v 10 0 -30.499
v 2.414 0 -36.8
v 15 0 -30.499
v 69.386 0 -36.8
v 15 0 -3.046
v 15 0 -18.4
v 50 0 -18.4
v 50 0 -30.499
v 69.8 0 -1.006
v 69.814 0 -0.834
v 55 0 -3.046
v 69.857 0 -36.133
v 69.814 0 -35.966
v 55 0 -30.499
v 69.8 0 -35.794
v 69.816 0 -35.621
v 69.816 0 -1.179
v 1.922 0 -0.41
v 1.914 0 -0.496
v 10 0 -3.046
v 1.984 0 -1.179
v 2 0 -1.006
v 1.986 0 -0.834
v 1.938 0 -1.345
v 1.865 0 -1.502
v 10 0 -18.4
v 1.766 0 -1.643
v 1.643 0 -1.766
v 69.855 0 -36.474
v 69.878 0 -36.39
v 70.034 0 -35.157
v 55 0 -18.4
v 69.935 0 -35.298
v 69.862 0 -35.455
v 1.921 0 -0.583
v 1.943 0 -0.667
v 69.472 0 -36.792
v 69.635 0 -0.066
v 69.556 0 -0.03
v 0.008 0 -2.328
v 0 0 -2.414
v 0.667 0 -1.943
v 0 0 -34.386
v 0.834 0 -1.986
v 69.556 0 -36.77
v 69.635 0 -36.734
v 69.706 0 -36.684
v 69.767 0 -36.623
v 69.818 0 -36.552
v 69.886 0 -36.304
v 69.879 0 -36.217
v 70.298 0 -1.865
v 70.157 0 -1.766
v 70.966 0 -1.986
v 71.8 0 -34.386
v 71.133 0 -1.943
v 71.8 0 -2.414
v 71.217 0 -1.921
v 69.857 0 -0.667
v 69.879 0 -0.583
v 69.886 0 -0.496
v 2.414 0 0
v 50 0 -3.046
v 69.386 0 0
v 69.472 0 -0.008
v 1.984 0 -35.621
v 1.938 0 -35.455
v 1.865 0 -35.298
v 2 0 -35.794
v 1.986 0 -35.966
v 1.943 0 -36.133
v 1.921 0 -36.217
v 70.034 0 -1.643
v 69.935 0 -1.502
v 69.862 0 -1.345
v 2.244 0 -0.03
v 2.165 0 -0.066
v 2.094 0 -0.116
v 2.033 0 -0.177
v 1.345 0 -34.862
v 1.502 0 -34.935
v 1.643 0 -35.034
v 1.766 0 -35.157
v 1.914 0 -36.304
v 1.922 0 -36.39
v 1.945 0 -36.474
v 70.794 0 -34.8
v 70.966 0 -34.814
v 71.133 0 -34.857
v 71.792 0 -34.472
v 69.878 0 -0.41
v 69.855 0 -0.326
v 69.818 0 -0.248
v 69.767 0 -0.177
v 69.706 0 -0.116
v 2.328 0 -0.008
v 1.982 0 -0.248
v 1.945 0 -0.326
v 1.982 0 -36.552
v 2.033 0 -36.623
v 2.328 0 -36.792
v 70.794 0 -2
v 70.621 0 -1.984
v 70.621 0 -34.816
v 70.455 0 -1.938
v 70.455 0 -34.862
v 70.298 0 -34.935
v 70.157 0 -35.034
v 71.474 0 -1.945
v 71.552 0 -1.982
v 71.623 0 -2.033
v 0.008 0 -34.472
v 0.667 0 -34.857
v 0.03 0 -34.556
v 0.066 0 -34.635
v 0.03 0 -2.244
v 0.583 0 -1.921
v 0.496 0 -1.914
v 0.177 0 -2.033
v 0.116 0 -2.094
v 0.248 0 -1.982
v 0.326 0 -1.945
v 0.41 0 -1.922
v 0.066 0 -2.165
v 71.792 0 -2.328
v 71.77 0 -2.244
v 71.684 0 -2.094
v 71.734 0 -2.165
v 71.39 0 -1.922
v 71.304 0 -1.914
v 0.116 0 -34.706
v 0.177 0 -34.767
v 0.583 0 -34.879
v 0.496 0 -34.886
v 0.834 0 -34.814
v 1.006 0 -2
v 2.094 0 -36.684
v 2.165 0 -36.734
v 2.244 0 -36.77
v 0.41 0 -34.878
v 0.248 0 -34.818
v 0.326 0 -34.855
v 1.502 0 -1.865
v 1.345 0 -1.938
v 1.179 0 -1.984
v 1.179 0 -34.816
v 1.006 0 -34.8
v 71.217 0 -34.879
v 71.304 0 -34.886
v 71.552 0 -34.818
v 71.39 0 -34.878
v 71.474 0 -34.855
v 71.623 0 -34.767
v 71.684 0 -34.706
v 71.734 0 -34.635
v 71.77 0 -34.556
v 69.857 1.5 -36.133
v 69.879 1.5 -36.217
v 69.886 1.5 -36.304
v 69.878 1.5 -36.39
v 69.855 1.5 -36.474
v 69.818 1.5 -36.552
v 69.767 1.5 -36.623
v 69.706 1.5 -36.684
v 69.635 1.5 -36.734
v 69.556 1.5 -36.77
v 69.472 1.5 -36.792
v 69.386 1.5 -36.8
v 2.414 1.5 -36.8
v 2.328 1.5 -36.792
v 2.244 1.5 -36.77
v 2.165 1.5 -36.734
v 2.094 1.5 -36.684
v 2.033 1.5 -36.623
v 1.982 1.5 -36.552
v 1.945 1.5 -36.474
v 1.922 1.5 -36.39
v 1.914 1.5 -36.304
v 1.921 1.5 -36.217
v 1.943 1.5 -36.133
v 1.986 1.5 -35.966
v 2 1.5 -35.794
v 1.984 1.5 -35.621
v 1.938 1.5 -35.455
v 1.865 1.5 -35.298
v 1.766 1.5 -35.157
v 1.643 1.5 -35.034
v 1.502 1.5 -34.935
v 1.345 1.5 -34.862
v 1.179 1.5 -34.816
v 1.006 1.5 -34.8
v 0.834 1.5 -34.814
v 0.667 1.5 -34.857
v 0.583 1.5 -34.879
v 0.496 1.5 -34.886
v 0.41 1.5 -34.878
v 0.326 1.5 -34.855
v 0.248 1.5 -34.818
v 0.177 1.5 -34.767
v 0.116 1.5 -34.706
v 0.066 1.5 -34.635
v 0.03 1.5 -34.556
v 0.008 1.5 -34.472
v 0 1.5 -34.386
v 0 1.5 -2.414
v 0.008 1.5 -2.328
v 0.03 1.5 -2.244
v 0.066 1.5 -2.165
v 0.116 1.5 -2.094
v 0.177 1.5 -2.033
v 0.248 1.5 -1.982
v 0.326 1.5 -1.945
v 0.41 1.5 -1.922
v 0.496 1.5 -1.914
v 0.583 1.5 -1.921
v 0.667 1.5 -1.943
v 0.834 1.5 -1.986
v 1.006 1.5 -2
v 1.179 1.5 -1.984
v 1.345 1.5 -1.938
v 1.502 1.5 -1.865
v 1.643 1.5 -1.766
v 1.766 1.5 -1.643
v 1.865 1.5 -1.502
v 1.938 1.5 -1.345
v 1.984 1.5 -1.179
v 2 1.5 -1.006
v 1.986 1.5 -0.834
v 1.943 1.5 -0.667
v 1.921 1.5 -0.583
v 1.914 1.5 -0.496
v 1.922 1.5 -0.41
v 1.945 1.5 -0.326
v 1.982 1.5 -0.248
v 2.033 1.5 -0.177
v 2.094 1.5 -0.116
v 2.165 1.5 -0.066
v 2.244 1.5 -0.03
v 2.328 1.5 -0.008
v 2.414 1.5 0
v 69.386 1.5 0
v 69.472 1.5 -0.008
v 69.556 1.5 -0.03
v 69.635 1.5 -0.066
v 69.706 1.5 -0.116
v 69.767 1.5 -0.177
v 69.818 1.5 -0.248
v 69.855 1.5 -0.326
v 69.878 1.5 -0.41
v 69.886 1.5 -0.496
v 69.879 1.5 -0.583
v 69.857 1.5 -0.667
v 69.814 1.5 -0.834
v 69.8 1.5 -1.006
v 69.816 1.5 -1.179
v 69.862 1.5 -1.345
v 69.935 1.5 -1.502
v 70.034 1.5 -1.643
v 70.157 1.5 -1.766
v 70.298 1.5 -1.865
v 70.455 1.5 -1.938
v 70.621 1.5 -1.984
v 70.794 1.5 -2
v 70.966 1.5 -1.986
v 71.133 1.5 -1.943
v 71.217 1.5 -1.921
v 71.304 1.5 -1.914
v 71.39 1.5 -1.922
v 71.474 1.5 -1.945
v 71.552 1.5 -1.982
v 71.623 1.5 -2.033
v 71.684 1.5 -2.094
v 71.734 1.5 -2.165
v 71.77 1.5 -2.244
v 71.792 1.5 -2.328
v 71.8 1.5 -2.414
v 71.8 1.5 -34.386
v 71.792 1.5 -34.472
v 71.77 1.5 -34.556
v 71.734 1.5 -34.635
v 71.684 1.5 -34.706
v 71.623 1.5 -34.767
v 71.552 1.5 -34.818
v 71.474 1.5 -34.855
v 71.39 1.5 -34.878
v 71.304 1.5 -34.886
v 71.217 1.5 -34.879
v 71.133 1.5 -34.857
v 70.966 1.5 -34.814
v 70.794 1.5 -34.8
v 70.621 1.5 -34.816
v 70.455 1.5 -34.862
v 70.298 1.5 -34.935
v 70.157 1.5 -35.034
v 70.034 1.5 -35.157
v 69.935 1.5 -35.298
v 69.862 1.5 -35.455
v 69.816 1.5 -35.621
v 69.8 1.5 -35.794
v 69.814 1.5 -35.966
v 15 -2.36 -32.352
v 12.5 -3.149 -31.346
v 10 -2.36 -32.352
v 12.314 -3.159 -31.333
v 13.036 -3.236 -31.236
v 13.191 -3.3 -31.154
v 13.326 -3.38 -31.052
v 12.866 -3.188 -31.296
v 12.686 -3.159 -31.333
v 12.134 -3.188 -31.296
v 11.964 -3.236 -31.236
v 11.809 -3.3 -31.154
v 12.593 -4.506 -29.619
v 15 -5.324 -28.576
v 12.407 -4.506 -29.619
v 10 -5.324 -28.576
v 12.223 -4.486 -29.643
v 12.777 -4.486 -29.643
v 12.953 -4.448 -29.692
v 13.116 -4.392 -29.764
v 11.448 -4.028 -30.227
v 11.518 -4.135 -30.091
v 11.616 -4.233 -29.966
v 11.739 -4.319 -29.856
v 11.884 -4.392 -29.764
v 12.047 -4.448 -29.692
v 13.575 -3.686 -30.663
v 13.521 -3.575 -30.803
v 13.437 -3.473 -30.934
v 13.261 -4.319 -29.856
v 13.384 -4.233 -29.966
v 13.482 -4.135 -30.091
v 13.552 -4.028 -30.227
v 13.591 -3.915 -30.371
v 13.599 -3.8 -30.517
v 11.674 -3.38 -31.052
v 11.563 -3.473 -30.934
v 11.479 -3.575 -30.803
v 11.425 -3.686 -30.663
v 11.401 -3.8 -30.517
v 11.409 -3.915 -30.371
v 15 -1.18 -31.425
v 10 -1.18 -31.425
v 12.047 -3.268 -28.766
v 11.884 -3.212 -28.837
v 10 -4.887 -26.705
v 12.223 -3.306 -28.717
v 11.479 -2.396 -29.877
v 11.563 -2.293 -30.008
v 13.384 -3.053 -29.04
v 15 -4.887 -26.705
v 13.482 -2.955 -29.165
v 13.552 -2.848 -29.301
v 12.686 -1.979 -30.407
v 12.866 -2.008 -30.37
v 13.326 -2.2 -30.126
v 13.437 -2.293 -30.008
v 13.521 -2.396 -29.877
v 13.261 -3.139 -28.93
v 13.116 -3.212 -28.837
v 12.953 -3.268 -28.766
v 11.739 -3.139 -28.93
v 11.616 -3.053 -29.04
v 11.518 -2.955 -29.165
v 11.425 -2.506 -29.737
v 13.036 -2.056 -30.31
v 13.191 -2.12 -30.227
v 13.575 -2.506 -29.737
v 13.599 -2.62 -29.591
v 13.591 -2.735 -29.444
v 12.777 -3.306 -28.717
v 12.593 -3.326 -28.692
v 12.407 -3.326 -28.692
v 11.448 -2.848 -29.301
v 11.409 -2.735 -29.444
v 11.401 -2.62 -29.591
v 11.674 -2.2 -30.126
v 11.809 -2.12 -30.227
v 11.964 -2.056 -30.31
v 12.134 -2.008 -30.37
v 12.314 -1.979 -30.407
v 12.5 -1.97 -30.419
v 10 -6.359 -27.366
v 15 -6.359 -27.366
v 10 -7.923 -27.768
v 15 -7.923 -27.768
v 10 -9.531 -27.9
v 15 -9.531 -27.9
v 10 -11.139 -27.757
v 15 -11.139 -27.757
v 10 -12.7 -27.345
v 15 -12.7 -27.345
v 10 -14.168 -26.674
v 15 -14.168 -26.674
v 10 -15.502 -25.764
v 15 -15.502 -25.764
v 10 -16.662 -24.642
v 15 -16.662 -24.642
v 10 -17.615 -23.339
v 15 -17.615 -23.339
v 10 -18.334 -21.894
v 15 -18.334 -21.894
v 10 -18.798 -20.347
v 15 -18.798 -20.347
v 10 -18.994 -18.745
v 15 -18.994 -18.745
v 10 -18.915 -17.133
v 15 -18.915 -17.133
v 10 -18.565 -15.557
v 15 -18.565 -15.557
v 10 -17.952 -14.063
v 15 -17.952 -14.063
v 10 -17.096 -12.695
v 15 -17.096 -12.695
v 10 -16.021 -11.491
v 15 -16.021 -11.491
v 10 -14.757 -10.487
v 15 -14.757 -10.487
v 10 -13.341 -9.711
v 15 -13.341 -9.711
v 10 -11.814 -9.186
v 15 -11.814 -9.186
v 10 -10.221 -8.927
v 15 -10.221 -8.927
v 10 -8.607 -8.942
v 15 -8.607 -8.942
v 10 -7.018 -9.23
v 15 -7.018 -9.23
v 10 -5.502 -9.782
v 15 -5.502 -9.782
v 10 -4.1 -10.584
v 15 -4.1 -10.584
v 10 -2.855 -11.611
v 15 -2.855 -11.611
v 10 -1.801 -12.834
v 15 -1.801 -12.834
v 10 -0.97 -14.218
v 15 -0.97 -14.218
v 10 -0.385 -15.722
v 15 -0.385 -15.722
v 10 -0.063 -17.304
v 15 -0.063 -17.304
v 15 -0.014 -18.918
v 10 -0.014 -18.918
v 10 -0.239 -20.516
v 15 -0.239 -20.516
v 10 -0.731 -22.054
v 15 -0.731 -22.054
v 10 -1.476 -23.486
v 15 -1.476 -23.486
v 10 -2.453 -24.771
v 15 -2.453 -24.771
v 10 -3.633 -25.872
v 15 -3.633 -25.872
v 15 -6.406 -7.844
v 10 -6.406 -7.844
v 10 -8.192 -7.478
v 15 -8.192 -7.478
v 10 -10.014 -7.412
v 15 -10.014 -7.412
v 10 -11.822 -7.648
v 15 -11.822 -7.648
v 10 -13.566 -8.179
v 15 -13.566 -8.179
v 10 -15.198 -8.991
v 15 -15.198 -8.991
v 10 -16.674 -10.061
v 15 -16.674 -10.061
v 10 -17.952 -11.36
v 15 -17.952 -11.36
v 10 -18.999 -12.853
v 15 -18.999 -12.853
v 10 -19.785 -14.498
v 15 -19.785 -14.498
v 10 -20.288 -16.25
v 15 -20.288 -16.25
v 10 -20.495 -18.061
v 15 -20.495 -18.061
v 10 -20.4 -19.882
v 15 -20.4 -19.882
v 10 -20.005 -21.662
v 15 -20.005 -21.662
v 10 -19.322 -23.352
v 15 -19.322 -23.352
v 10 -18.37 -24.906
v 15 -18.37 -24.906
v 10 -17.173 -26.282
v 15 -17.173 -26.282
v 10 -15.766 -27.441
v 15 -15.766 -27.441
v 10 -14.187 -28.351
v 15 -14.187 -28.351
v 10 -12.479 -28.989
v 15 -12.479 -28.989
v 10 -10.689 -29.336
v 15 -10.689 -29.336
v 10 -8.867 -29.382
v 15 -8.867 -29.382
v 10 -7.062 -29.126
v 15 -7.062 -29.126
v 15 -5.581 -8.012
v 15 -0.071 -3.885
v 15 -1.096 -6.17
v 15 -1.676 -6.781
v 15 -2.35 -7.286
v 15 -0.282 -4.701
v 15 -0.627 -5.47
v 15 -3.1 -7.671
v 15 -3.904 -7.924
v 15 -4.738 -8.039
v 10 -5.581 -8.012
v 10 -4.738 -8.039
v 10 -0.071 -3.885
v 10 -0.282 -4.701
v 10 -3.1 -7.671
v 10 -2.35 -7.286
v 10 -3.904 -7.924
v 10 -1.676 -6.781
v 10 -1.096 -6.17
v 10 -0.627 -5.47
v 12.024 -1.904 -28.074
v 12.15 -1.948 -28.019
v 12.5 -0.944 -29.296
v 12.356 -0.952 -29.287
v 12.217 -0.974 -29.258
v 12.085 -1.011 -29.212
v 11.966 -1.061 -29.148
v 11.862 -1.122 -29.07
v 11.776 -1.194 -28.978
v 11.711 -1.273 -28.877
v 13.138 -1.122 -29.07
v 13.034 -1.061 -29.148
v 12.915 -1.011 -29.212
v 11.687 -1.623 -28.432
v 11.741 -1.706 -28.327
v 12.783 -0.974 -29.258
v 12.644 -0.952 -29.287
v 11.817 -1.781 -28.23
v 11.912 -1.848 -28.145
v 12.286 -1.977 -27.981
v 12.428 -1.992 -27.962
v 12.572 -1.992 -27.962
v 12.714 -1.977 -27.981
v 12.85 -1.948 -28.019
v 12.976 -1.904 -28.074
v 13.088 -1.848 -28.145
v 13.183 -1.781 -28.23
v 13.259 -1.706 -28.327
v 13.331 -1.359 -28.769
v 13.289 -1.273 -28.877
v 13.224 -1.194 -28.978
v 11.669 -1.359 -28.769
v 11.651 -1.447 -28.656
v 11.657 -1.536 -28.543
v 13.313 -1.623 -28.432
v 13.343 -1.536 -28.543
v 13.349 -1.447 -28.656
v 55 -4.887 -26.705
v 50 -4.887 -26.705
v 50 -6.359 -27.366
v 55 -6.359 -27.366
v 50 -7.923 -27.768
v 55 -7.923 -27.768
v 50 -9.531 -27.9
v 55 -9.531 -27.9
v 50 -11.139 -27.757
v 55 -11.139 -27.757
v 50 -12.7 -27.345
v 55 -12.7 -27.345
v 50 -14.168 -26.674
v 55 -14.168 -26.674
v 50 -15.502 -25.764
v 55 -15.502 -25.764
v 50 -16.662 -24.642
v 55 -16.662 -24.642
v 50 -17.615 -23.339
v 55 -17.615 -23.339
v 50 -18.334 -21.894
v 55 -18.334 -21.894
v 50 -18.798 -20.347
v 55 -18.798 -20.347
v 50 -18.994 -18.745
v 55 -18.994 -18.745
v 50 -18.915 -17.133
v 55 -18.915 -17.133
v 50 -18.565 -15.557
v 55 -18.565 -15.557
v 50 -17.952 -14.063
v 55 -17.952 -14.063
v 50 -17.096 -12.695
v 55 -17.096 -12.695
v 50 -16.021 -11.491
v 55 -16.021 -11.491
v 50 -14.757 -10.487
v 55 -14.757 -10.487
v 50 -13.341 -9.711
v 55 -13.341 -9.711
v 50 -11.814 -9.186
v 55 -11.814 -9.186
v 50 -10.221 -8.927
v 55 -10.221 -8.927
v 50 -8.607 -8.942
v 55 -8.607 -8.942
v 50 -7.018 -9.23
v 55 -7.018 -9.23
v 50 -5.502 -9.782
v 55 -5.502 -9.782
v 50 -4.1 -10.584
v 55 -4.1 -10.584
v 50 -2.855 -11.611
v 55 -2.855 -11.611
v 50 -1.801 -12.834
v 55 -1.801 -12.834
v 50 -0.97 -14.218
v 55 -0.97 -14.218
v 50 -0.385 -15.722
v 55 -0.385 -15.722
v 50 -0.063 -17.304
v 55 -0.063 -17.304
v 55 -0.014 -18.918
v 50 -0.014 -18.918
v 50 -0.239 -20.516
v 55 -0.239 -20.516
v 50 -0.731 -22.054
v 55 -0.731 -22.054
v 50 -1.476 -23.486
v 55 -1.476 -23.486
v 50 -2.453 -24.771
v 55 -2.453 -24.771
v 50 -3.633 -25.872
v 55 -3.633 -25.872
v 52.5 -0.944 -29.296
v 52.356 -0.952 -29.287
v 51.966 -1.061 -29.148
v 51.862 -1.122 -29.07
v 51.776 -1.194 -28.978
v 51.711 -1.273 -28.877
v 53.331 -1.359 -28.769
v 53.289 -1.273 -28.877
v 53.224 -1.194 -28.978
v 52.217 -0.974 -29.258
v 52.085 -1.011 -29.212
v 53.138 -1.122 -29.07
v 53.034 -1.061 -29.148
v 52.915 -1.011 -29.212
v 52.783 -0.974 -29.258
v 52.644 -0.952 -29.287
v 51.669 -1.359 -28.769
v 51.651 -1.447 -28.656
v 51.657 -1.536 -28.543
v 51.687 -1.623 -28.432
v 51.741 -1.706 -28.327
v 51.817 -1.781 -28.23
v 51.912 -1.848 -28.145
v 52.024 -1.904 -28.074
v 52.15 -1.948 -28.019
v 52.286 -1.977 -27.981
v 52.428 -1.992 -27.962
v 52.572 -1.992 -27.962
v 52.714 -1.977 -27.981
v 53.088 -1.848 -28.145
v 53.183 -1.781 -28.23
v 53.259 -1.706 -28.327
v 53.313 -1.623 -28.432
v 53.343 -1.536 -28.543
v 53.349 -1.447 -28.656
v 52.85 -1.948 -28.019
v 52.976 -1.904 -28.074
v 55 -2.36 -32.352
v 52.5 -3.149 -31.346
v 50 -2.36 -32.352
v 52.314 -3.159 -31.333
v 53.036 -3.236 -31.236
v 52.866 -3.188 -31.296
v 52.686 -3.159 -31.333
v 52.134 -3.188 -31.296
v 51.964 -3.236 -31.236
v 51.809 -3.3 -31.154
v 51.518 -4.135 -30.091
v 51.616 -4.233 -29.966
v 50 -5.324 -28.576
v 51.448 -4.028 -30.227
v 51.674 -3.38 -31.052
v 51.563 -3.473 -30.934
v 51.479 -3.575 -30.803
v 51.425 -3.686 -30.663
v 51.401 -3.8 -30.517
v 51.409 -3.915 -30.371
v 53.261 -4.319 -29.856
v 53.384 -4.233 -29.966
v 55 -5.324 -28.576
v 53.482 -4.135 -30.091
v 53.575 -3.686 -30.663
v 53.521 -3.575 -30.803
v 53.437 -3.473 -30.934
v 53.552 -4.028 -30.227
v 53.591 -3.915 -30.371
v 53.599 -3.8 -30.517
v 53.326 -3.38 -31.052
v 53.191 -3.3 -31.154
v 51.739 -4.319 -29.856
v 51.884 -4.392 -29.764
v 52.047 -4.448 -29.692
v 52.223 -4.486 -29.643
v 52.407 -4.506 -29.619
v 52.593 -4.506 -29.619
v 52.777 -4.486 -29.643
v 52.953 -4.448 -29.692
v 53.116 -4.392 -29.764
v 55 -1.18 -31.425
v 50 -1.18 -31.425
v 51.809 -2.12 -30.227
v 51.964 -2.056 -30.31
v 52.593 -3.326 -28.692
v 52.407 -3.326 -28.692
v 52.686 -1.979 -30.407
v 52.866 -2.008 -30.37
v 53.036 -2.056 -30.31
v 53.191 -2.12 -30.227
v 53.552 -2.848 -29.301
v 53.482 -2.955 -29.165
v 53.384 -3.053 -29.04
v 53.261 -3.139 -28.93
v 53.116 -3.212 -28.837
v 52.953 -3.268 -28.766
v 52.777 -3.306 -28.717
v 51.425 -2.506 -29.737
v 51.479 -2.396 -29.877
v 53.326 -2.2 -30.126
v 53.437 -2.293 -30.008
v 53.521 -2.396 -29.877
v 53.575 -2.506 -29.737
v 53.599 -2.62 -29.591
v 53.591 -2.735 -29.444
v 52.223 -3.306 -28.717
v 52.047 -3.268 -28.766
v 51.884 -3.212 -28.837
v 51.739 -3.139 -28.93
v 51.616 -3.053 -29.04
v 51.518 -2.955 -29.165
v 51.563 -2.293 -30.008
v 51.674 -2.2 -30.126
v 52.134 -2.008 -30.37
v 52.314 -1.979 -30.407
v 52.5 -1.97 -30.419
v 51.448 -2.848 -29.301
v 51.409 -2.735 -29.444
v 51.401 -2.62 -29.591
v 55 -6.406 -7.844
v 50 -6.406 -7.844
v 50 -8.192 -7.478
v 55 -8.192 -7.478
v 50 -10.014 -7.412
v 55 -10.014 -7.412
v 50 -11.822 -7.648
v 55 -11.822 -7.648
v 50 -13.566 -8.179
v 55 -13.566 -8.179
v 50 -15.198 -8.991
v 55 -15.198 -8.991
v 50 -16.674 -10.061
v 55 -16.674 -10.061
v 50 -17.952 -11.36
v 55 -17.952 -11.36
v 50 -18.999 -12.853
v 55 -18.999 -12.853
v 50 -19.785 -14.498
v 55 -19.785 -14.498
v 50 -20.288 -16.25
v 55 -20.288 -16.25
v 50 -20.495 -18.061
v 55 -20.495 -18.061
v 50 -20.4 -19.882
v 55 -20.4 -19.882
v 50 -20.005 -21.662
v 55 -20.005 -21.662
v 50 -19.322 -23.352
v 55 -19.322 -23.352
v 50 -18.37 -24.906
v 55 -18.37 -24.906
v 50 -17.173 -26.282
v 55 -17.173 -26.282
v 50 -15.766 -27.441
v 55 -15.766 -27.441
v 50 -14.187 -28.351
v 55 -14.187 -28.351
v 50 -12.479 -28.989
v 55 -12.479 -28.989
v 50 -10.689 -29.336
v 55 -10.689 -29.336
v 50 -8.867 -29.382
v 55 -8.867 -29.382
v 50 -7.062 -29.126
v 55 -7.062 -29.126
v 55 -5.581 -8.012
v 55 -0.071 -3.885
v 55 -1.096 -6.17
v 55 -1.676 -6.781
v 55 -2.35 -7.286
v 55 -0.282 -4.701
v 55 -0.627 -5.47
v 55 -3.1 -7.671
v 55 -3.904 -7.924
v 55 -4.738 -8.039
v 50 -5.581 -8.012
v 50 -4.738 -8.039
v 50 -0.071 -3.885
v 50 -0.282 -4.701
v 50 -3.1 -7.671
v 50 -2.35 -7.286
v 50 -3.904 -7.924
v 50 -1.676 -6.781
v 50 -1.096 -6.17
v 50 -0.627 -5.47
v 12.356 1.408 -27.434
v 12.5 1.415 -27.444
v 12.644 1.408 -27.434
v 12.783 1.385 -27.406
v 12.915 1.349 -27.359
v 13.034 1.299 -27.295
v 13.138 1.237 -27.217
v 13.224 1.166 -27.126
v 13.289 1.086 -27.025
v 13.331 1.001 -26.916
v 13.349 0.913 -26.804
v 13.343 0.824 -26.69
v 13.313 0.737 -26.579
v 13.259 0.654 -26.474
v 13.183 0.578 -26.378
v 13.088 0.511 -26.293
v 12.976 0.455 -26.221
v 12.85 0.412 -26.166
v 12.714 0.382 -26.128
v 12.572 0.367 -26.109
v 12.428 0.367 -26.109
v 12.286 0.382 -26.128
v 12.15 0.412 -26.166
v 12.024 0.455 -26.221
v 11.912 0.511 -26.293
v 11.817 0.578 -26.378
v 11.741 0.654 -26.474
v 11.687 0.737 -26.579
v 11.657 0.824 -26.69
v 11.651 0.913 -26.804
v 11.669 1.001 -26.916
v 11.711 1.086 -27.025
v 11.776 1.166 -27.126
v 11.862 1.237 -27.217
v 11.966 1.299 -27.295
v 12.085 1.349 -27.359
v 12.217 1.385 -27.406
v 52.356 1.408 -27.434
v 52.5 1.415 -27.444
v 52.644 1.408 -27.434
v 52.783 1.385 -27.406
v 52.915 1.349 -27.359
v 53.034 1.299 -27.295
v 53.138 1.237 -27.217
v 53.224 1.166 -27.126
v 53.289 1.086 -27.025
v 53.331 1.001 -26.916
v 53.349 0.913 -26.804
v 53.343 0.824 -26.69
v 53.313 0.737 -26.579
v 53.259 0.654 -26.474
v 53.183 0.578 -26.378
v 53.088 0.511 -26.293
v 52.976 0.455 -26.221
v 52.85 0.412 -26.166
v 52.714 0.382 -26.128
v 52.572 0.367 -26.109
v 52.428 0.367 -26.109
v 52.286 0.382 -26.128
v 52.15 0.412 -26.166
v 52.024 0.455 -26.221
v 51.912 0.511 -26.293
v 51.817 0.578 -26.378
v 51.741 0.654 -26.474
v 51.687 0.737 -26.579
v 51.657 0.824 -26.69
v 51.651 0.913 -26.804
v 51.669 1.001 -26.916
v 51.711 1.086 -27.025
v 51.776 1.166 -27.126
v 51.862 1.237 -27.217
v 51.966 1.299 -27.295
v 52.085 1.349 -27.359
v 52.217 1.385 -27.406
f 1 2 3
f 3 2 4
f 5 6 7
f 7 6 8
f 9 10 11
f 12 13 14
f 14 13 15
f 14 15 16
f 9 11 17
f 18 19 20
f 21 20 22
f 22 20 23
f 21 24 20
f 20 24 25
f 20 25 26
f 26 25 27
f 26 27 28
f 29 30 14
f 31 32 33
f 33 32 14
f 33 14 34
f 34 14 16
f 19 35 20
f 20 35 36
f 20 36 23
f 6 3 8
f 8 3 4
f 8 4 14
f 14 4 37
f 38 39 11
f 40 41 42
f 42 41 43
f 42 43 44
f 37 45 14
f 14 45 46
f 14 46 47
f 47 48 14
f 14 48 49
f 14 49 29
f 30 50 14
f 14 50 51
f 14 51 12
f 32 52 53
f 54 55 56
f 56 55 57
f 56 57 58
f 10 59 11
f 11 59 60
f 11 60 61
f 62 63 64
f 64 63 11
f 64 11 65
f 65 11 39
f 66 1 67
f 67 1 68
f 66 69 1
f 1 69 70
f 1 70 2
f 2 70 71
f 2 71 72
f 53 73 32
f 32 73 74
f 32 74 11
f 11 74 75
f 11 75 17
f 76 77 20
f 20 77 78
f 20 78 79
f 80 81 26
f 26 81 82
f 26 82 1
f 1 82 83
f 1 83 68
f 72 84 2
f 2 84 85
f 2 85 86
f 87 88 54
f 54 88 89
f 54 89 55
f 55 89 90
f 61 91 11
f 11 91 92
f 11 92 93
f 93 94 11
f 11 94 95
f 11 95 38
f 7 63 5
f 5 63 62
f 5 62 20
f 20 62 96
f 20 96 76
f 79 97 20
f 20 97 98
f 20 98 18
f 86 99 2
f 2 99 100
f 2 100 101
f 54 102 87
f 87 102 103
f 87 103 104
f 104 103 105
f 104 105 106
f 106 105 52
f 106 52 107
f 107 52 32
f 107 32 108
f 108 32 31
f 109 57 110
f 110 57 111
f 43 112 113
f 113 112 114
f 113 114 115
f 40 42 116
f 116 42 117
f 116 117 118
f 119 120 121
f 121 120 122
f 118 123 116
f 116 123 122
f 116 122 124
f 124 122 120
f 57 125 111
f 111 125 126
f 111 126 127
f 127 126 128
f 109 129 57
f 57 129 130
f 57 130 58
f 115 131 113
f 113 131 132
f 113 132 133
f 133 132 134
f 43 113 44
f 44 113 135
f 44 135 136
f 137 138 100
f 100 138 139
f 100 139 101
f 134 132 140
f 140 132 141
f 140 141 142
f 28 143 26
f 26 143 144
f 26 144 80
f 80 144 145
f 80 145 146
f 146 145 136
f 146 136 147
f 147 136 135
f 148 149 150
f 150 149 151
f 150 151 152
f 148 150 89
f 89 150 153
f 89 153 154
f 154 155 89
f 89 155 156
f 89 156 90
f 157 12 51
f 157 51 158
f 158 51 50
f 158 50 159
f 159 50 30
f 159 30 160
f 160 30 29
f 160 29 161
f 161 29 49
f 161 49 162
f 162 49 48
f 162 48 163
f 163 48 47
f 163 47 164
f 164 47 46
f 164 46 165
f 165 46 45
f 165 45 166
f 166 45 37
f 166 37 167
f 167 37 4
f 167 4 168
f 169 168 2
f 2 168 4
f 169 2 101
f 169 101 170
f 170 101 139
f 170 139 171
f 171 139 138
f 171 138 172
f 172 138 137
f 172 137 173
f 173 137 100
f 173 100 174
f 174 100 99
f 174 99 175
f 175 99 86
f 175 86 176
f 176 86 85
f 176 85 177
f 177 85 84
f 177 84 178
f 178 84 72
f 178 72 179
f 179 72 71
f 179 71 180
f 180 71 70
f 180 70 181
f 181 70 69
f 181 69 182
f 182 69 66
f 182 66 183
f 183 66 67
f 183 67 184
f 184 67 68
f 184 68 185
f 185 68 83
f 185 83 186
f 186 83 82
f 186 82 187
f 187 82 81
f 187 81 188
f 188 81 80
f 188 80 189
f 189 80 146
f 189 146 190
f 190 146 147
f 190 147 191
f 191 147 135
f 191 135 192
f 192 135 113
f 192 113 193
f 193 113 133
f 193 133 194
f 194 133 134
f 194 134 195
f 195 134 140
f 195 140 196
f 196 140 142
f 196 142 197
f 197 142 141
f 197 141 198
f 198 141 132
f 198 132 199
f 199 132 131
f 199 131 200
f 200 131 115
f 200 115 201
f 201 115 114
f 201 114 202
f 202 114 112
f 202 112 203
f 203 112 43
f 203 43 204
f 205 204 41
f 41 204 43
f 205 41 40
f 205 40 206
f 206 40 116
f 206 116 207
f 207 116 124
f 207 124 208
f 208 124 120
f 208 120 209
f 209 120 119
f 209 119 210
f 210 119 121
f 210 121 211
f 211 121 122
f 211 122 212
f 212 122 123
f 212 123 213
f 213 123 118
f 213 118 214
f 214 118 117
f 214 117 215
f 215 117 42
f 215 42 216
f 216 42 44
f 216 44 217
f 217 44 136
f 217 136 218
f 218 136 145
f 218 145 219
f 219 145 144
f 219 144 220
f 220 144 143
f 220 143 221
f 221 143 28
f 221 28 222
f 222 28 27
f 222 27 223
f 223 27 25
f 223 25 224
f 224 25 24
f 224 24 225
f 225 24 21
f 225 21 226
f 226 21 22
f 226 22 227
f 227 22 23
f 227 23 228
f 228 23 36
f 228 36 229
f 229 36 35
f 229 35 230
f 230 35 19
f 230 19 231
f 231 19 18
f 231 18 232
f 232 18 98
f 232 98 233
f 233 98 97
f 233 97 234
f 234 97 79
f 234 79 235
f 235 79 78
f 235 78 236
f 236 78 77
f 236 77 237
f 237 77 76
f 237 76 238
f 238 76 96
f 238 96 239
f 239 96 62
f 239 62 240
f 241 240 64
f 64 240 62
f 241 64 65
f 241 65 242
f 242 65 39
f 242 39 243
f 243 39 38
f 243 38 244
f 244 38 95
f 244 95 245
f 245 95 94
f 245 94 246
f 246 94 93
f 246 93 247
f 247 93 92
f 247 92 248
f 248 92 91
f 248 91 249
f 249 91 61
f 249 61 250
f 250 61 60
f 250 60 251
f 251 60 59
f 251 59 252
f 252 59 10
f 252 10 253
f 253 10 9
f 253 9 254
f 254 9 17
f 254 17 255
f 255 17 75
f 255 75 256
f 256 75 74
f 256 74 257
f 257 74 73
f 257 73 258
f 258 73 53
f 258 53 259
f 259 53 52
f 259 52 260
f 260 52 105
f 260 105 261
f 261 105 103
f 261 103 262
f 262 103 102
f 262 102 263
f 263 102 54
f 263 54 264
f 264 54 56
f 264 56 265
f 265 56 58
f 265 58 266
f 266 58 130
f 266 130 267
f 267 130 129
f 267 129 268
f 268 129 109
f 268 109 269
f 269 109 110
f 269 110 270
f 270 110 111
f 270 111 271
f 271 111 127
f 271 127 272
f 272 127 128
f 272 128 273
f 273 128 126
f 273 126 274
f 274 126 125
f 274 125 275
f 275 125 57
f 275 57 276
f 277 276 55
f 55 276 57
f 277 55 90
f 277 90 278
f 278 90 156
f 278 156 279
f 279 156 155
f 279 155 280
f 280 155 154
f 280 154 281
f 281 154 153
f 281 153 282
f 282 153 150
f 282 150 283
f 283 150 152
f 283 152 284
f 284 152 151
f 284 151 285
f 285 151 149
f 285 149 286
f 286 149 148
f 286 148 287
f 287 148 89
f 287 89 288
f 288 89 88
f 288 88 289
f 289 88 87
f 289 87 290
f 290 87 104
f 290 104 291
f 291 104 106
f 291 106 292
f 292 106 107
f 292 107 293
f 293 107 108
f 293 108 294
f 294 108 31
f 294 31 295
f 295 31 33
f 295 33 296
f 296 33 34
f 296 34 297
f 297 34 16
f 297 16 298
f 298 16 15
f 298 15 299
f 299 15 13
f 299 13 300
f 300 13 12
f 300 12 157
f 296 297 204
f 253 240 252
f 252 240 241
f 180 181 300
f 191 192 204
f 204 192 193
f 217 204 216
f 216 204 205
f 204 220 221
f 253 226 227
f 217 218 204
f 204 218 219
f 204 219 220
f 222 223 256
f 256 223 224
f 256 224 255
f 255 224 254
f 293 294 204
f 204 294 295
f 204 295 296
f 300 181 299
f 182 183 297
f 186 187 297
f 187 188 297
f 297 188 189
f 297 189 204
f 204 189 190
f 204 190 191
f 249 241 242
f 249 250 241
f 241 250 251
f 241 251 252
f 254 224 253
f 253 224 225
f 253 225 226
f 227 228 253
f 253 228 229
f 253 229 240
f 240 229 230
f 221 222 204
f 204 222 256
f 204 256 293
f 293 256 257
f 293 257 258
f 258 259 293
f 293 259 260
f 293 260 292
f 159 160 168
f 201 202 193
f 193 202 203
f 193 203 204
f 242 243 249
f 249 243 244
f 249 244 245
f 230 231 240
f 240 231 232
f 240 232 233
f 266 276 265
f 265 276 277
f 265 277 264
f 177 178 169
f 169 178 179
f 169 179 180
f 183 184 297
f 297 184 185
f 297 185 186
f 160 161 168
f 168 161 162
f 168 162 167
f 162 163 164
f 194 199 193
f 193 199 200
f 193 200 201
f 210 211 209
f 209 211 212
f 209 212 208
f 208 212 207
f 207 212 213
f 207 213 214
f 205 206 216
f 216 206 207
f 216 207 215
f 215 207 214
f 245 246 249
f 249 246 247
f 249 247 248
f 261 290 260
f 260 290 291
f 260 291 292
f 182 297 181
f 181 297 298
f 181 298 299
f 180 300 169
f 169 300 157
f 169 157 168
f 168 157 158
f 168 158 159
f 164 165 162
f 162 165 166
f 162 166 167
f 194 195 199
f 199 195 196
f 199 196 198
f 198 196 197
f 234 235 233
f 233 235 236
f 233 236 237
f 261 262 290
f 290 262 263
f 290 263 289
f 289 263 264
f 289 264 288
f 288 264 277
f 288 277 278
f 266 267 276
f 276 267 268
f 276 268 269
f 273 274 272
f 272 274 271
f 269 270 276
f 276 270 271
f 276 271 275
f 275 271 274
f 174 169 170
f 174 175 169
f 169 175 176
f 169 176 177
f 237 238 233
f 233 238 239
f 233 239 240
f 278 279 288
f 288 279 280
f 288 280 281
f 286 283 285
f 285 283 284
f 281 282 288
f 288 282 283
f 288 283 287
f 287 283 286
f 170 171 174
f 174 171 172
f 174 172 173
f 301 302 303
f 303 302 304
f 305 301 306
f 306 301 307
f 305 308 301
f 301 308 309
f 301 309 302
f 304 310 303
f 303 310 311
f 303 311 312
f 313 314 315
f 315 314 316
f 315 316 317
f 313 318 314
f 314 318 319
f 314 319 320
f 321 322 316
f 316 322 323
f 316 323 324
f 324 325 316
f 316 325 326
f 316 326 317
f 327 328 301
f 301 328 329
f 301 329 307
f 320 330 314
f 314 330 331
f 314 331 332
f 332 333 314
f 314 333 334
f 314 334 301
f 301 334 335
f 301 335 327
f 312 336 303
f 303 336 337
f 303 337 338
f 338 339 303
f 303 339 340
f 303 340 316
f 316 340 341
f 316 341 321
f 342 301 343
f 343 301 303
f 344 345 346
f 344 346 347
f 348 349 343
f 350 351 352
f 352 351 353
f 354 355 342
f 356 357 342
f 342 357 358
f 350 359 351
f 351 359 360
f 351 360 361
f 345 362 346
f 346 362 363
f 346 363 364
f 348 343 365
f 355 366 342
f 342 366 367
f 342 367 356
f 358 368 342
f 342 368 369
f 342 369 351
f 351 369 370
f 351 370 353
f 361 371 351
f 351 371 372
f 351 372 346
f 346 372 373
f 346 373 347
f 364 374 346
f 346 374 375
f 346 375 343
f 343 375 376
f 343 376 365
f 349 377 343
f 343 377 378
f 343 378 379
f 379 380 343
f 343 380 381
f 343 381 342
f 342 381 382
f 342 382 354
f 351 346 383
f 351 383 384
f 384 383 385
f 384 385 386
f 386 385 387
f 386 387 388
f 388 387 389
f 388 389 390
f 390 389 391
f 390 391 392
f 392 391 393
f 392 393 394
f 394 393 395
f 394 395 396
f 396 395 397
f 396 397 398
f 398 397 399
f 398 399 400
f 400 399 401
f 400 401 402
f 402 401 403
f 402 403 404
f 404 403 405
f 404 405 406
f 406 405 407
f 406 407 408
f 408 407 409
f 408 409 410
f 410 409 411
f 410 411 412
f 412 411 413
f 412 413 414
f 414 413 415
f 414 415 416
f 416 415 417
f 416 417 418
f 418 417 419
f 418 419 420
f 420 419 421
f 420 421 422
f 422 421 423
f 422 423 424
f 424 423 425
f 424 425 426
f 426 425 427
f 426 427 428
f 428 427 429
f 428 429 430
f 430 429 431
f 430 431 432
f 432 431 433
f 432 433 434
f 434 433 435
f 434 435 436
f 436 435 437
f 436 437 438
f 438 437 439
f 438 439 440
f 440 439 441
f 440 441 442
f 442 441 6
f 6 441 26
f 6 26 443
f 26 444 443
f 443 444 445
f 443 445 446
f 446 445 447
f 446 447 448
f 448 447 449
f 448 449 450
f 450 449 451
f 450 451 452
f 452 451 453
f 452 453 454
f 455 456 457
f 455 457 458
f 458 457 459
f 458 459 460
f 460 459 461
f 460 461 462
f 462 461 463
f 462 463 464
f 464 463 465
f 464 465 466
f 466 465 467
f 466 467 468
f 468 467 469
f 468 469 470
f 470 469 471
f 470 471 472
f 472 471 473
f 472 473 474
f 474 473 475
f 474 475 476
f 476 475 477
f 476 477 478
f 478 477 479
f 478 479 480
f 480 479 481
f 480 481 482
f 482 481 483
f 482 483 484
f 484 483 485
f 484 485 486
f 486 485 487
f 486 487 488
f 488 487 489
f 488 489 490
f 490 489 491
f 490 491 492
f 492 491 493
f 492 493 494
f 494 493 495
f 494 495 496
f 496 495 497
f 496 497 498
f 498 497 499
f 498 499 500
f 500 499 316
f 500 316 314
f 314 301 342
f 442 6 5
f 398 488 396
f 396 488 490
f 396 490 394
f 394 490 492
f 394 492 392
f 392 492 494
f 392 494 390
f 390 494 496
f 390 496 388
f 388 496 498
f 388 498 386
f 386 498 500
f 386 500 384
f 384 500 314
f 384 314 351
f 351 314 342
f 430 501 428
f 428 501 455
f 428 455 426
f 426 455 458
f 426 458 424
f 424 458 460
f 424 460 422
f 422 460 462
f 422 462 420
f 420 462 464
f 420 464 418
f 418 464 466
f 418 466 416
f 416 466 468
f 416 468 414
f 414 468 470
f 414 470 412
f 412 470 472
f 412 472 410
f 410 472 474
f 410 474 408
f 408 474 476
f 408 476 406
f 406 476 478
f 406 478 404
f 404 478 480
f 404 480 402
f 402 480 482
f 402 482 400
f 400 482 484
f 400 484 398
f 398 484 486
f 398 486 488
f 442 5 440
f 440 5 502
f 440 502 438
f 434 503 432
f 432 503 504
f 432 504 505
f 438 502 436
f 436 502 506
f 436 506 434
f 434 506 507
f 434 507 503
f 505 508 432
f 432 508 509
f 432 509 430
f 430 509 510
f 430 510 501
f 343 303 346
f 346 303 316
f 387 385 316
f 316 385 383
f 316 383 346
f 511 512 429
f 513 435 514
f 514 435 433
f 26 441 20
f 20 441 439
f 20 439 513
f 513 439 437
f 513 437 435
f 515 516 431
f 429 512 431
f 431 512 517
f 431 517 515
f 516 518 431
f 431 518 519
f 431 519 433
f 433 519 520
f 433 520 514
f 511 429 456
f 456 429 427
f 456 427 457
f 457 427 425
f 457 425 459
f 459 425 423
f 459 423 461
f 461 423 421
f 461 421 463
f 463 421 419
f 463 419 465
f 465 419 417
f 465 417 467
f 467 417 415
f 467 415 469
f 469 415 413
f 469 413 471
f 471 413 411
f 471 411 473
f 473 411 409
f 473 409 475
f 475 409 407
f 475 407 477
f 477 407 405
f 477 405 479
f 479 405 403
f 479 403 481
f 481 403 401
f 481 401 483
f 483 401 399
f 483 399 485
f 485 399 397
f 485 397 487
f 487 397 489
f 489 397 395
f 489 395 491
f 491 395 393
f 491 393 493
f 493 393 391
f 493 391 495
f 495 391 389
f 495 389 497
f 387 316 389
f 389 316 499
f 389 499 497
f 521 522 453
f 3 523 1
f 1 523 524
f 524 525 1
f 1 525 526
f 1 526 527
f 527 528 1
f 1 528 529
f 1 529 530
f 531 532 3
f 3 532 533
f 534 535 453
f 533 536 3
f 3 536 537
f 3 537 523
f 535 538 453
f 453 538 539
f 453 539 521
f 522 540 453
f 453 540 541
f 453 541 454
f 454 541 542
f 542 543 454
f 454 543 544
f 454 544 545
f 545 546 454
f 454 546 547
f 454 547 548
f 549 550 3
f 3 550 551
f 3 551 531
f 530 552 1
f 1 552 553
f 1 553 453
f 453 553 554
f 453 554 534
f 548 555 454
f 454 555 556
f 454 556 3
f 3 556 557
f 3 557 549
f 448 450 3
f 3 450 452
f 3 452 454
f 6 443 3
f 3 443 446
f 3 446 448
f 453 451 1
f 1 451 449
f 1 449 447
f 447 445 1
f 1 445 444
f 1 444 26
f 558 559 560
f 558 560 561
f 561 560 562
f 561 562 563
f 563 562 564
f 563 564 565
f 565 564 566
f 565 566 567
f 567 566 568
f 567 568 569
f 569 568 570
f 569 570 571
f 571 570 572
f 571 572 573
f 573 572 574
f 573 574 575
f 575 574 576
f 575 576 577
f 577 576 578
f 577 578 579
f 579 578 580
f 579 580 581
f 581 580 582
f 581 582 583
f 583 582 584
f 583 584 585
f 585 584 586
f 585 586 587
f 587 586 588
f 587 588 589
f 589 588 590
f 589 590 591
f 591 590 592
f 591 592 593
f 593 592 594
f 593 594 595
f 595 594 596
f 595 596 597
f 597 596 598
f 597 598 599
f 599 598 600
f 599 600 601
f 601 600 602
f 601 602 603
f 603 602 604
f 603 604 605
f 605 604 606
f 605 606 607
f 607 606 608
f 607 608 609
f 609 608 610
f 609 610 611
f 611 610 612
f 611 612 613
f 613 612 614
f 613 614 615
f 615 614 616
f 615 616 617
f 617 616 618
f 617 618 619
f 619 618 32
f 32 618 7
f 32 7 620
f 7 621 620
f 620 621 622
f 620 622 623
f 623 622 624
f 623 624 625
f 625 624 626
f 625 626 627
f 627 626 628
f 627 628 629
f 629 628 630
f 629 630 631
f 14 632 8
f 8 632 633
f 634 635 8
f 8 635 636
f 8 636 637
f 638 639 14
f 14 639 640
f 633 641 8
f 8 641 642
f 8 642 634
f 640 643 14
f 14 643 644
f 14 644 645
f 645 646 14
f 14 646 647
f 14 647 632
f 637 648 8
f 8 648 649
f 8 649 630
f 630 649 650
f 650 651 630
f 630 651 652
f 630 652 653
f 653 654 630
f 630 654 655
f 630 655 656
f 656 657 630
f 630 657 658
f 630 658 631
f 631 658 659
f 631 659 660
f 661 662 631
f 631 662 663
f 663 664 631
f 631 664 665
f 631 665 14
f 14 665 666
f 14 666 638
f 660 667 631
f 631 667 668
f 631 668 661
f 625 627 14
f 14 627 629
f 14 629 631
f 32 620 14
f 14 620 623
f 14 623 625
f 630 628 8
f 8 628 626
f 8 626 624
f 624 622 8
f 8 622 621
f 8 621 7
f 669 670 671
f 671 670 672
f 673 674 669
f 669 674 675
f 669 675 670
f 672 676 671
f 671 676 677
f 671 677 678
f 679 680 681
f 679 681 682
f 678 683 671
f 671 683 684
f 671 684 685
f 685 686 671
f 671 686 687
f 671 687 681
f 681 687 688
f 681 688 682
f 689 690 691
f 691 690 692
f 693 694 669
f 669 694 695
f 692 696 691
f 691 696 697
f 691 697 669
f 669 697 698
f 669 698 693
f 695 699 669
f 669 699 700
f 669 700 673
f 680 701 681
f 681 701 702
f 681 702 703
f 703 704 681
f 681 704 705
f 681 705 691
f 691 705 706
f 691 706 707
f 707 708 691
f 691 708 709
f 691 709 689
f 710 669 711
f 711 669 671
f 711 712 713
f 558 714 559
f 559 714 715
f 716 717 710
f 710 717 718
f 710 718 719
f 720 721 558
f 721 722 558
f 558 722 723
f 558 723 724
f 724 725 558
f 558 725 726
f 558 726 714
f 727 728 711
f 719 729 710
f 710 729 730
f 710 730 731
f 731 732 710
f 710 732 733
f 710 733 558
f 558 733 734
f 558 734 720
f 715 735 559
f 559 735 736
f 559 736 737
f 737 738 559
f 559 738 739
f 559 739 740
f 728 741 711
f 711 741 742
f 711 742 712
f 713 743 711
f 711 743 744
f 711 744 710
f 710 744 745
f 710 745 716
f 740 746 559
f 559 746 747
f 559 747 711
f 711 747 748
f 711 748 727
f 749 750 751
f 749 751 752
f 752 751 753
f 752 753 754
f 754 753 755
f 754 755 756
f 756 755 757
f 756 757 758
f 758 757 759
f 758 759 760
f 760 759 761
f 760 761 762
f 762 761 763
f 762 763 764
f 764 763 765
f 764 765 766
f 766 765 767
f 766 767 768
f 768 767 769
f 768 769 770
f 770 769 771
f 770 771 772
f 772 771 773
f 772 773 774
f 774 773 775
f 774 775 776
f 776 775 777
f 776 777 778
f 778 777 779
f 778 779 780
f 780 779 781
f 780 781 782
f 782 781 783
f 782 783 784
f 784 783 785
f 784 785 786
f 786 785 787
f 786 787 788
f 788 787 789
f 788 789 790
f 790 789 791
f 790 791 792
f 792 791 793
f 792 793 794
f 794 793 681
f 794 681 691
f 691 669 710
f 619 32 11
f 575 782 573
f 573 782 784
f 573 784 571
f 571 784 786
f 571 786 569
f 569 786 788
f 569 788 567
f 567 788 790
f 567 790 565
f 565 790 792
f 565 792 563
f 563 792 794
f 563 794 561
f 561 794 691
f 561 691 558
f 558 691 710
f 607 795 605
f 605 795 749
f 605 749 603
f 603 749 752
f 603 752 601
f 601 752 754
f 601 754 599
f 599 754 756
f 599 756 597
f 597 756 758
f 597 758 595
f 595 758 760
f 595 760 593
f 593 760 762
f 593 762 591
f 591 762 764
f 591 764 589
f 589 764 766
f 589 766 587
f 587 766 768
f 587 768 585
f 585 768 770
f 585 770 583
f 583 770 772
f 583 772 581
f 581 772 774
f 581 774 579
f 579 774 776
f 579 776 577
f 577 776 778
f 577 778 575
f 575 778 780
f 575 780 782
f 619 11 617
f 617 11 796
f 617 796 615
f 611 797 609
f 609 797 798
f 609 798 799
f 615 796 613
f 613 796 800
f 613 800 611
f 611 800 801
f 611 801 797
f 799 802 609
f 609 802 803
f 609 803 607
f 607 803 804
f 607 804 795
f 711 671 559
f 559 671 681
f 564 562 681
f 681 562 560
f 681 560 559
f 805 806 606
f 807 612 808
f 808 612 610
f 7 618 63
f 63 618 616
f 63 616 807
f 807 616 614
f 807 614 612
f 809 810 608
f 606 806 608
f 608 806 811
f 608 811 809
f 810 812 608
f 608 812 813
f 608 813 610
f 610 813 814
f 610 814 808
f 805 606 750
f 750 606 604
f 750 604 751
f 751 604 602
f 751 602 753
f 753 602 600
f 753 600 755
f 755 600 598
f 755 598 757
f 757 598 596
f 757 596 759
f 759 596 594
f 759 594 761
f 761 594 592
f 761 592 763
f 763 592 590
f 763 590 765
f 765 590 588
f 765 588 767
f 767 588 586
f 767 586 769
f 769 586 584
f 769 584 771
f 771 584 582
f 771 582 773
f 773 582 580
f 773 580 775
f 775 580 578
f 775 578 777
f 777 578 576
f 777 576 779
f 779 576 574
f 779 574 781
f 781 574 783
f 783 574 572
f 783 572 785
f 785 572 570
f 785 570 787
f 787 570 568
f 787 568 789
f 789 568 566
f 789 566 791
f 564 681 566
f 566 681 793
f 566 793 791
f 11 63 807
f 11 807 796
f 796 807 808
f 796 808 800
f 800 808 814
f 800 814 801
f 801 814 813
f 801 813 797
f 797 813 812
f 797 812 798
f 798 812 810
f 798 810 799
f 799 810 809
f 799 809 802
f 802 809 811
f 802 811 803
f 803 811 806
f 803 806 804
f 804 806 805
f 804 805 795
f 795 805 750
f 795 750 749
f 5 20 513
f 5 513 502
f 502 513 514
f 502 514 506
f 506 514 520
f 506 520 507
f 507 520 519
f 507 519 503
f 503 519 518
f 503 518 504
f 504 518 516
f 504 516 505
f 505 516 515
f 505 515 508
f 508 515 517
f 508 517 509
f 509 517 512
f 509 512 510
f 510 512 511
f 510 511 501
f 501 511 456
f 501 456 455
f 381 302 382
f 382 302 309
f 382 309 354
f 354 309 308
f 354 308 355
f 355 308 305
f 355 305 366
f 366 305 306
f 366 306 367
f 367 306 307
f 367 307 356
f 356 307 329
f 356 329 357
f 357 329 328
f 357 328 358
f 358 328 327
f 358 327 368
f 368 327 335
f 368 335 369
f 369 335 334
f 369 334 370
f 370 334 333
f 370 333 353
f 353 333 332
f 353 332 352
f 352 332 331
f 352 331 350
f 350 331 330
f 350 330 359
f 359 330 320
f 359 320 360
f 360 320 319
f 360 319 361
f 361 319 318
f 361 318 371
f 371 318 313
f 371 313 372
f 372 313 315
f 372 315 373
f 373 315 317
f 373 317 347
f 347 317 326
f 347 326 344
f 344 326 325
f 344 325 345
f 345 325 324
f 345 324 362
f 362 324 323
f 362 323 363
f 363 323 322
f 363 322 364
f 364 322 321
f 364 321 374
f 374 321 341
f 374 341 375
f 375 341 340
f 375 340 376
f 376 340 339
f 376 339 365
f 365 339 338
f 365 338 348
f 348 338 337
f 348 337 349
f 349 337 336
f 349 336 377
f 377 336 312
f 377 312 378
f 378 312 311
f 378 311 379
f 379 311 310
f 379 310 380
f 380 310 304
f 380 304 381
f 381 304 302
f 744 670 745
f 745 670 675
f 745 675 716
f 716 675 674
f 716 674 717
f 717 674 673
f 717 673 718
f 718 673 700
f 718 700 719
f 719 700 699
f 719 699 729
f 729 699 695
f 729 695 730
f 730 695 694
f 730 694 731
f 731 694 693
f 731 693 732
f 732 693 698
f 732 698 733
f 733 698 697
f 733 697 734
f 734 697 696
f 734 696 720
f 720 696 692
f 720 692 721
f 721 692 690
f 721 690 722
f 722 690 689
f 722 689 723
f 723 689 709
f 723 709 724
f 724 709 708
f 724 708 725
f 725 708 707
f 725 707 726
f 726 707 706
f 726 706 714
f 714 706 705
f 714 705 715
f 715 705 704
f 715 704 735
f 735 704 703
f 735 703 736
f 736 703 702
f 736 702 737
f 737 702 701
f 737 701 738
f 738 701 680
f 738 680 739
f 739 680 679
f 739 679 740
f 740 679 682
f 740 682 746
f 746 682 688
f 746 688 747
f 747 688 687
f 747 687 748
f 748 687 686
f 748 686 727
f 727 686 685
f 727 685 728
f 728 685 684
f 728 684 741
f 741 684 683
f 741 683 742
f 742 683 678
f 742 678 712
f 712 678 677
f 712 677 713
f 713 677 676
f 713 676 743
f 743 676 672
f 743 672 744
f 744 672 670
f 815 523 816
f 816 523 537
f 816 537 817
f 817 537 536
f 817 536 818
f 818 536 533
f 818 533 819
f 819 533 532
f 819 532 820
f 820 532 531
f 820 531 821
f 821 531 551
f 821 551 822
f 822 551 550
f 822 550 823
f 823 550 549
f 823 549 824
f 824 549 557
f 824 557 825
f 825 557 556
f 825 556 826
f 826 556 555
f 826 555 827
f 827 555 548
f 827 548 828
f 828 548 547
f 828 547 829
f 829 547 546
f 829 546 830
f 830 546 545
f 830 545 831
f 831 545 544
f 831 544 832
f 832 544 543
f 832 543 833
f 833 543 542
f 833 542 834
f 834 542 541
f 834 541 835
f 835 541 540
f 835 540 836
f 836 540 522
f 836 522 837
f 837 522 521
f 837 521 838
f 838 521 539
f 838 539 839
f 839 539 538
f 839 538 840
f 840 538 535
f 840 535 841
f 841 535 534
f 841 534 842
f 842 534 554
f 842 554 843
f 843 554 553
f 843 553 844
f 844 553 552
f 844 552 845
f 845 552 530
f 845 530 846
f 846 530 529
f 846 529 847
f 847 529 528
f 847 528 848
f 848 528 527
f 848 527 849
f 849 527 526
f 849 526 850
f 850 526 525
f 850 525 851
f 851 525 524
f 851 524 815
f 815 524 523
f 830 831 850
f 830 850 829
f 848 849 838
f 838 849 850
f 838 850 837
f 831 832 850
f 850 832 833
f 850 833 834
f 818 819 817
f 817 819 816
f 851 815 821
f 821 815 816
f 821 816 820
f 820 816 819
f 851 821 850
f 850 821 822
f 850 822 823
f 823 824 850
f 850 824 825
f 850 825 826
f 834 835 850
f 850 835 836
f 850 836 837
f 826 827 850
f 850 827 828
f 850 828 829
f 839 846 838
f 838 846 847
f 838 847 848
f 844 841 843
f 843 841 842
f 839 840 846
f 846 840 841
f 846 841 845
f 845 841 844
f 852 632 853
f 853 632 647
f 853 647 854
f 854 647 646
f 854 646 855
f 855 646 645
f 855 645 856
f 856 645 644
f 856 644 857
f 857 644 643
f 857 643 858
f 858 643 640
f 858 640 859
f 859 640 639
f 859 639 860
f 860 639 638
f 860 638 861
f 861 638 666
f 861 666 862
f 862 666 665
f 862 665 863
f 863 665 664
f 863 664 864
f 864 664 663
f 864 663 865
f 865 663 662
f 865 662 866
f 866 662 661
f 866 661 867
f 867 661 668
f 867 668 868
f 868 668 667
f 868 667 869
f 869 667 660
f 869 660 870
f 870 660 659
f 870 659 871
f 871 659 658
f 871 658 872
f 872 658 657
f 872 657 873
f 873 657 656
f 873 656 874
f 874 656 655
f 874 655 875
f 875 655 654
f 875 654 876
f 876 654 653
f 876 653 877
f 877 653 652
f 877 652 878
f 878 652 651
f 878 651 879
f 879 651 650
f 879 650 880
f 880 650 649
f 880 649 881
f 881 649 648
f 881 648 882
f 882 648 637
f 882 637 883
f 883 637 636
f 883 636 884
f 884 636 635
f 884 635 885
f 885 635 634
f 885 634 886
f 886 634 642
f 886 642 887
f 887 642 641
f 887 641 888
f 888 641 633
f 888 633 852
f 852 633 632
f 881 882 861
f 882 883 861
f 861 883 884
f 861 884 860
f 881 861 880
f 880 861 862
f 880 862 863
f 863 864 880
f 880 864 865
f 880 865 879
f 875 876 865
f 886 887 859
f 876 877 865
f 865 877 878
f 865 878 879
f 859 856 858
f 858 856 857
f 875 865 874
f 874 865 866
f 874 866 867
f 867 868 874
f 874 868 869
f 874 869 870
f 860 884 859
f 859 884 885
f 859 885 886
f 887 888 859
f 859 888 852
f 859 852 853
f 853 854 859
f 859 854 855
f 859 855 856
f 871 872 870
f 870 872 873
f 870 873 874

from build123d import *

# Parameters (mm, degrees)
BOSS_EXTRUDE1_DEPTH = 1.5
BOSS_EXTRUDE2_START = -10
BOSS_EXTRUDE2_DEPTH = 5
BOSS_EXTRUDE3_START = -50
BOSS_EXTRUDE3_DEPTH = 5
FILLET1_R           = 5
SKETCH4_R           = 1.1
CUT_EXTRUDE1_DEPTH  = 1.5
SKETCH5_R           = 0.85
CUT_EXTRUDE2_DEPTH  = 6


with BuildPart() as part:
    # Sketch1 → Boss-Extrude1 (new body)
    with BuildSketch(Plane(origin=(0, 0, 0), x_dir=(1, 0, 0), z_dir=(0, 1, 0))):
        with BuildLine():
            Line((2.414213562, 0), (69.385786438, 0))
            ThreePointArc((69.385786438, 0), (69.794034728, 0.211324865), (69.857190958, 0.666666667))
            ThreePointArc((69.857190958, 0.666666667), (70.092893219, 1.707106781), (71.133333333, 1.942809042))
            ThreePointArc((71.133333333, 1.942809042), (71.588675135, 2.005965272), (71.8, 2.414213562))
            Line((71.8, 2.414213562), (71.8, 34.385786438))
            ThreePointArc((71.8, 34.385786438), (71.588675135, 34.794034728), (71.133333333, 34.857190958))
            ThreePointArc((71.133333333, 34.857190958), (70.092893219, 35.092893219), (69.857190958, 36.133333333))
            ThreePointArc((69.857190958, 36.133333333), (69.794034728, 36.588675135), (69.385786438, 36.8))
            Line((69.385786438, 36.8), (2.414213562, 36.8))
            ThreePointArc((2.414213562, 36.8), (2.005965272, 36.588675135), (1.942809042, 36.133333333))
            ThreePointArc((1.942809042, 36.133333333), (1.707106781, 35.092893219), (0.666666667, 34.857190958))
            ThreePointArc((0.666666667, 34.857190958), (0.211324865, 34.794034728), (0, 34.385786438))
            Line((0, 34.385786438), (0, 2.414213562))
            ThreePointArc((0, 2.414213562), (0.211324865, 2.005965272), (0.666666667, 1.942809042))
            ThreePointArc((0.666666667, 1.942809042), (1.707106781, 1.707106781), (1.942809042, 0.666666667))
            ThreePointArc((1.942809042, 0.666666667), (2.005965272, 0.211324865), (2.414213562, 0))
        make_face()
    extrude(amount=BOSS_EXTRUDE1_DEPTH)

    # Sketch3 → Boss-Extrude2 (add)
    with BuildSketch(Plane.ZY.offset(BOSS_EXTRUDE2_START)):
        with BuildLine():
            Line((-18.4, 0), (-30.499127896, 0))
            Line((-30.499127896, 0), (-25.871961194, -3.633161336))
            ThreePointArc((-25.871961194, -3.633161336), (-22.554216695, -0.956436127), (-18.4, 0))
        make_face()
        with BuildLine():
            Line((-12.854731747, 0), (-18.4, 0))
            ThreePointArc((-18.4, 0), (-13.582214371, -17.687731165), (-26.704575482, -4.886538603))
            Line((-26.704575482, -4.886538603), (-31.425470843, -1.179783346))
            Line((-31.425470843, -1.179783346), (-32.35181379, -2.359566693))
            Line((-32.35181379, -2.359566693), (-28.576454789, -5.323905182))
            ThreePointArc((-28.576454789, -5.323905182), (-14.871832802, -19.918830847), (-12.854731747, 0))
        make_face()
    extrude(amount=-BOSS_EXTRUDE2_DEPTH)

    # Sketch3<3> → Boss-Extrude3 (add)
    with BuildSketch(Plane.ZY.offset(BOSS_EXTRUDE3_START)):
        with BuildLine():
            Line((-18.4, 0), (-30.499127896, 0))
            Line((-30.499127896, 0), (-25.871961194, -3.633161336))
            ThreePointArc((-25.871961194, -3.633161336), (-22.554216695, -0.956436127), (-18.4, 0))
        make_face()
        with BuildLine():
            Line((-12.854731747, 0), (-18.4, 0))
            ThreePointArc((-18.4, 0), (-13.582214371, -17.687731165), (-26.704575482, -4.886538603))
            Line((-26.704575482, -4.886538603), (-31.425470843, -1.179783346))
            Line((-31.425470843, -1.179783346), (-32.35181379, -2.359566693))
            Line((-32.35181379, -2.359566693), (-28.576454789, -5.323905182))
            ThreePointArc((-28.576454789, -5.323905182), (-14.871832802, -19.918830847), (-12.854731747, 0))
        make_face()
    extrude(amount=-BOSS_EXTRUDE3_DEPTH)

    # Fillet1
    fillet1_edges = [part.edges().sort_by_distance(p)[0] for p in [
        (52.5, 0, -12.854731747),
        (12.5, 0, -12.854731747),
    ]]
    fillet(fillet1_edges, radius=FILLET1_R)

    # Sketch4 → Cut-Extrude1 (cut)
    with BuildSketch(Plane(origin=(0, -17.173792622, -13.484528084), x_dir=(1, 0, 0), z_dir=(0, -0.7865222309713126, -0.6175619646544867))):
        with Locations((12.5, -21.609183849)):
            Circle(SKETCH4_R)
        with Locations((52.5, -21.609183849)):
            Circle(SKETCH4_R)
    extrude(amount=-CUT_EXTRUDE1_DEPTH, mode=Mode.SUBTRACT)

    # Sketch5 → Cut-Extrude2 (cut)
    with BuildSketch(Plane(origin=(0, -17.173792622, -13.484528084), x_dir=(1, 0, 0), z_dir=(0, -0.7865222309713126, -0.6175619646544867))):
        with Locations((12.5, -21.609183849)):
            Circle(SKETCH5_R)
        with Locations((52.5, -21.609183849)):
            Circle(SKETCH5_R)
    extrude(amount=-CUT_EXTRUDE2_DEPTH, mode=Mode.SUBTRACT)


solid = part.part
